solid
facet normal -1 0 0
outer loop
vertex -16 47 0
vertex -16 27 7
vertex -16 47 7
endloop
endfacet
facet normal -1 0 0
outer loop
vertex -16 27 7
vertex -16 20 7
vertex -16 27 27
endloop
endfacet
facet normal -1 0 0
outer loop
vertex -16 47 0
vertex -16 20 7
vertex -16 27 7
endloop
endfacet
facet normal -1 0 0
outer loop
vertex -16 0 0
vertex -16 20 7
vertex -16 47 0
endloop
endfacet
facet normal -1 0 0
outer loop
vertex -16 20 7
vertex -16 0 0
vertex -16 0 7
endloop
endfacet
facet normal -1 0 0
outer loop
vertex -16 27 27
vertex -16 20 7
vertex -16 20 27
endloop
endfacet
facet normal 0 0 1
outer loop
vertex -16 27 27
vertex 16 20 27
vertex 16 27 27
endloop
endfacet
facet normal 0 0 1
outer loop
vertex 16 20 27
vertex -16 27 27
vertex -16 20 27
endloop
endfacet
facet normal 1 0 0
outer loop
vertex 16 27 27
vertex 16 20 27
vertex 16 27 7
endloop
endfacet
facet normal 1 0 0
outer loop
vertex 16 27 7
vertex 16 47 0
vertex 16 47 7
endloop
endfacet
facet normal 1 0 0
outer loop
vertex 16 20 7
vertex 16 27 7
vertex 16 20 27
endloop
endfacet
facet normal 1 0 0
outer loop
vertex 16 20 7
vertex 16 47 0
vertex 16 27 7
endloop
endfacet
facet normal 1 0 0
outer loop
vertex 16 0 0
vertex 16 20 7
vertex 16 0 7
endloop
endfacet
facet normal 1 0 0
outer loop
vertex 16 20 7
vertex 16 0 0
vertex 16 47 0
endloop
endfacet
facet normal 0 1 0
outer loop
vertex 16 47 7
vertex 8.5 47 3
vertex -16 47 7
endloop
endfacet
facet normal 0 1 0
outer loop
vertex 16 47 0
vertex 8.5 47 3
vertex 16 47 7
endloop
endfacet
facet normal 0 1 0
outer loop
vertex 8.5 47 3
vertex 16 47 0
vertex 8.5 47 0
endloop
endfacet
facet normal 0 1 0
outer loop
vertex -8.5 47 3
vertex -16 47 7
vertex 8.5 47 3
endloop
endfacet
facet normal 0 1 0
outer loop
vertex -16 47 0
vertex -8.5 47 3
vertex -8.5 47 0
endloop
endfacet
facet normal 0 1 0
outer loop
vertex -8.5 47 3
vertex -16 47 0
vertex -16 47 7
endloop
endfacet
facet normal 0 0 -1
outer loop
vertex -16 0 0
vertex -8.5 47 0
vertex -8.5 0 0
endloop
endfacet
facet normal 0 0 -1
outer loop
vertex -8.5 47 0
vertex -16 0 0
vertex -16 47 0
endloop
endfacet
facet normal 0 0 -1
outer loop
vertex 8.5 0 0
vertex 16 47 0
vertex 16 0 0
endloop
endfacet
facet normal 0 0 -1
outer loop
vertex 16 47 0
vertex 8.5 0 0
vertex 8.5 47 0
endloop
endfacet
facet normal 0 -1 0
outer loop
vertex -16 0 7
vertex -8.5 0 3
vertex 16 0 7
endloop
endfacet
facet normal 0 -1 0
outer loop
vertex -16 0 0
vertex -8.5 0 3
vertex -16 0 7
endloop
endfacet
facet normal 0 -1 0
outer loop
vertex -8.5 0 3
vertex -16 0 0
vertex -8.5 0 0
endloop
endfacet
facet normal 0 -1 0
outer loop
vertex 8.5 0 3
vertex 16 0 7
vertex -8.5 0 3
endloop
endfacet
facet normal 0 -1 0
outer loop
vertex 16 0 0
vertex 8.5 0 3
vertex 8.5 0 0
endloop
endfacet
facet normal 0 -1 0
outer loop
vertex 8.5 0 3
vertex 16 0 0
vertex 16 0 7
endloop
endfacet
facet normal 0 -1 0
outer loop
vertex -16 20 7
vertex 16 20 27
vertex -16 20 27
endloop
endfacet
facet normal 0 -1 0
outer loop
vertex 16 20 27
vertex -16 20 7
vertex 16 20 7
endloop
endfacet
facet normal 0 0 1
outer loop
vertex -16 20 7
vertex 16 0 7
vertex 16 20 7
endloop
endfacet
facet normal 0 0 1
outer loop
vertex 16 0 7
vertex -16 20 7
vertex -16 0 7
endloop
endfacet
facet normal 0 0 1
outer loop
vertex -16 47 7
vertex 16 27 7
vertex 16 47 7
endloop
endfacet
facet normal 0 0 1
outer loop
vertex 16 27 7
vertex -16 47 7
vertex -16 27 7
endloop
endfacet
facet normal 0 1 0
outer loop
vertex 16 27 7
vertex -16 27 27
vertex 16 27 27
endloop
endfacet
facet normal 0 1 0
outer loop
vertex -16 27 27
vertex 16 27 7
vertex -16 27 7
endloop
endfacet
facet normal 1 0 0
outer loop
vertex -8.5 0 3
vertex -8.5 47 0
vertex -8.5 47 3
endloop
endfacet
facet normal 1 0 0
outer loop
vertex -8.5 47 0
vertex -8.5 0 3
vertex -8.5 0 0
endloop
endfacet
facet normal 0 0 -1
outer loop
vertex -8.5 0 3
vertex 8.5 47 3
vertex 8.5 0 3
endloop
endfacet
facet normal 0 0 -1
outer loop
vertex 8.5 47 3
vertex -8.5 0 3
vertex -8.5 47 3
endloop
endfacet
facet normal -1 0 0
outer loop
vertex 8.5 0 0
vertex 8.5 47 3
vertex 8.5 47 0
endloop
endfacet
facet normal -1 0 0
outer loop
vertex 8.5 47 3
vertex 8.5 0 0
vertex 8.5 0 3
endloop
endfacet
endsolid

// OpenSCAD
translate ([-16, 0, 0]) {
  difference () {
     // Floor
    cube ([32, 47, 27]);

    // Remove cubes to create vertical
    translate ([0, 0, 7]) {
      cube ([32, 20, 27]);
    }
    translate ([0, 27, 7]) {
      cube ([32, 20, 27]);
    }
    
    // Tie-wrap
    translate ([7.5, 0, 0]) {
      cube ([17, 47, 3]);
    }
  } 
}
